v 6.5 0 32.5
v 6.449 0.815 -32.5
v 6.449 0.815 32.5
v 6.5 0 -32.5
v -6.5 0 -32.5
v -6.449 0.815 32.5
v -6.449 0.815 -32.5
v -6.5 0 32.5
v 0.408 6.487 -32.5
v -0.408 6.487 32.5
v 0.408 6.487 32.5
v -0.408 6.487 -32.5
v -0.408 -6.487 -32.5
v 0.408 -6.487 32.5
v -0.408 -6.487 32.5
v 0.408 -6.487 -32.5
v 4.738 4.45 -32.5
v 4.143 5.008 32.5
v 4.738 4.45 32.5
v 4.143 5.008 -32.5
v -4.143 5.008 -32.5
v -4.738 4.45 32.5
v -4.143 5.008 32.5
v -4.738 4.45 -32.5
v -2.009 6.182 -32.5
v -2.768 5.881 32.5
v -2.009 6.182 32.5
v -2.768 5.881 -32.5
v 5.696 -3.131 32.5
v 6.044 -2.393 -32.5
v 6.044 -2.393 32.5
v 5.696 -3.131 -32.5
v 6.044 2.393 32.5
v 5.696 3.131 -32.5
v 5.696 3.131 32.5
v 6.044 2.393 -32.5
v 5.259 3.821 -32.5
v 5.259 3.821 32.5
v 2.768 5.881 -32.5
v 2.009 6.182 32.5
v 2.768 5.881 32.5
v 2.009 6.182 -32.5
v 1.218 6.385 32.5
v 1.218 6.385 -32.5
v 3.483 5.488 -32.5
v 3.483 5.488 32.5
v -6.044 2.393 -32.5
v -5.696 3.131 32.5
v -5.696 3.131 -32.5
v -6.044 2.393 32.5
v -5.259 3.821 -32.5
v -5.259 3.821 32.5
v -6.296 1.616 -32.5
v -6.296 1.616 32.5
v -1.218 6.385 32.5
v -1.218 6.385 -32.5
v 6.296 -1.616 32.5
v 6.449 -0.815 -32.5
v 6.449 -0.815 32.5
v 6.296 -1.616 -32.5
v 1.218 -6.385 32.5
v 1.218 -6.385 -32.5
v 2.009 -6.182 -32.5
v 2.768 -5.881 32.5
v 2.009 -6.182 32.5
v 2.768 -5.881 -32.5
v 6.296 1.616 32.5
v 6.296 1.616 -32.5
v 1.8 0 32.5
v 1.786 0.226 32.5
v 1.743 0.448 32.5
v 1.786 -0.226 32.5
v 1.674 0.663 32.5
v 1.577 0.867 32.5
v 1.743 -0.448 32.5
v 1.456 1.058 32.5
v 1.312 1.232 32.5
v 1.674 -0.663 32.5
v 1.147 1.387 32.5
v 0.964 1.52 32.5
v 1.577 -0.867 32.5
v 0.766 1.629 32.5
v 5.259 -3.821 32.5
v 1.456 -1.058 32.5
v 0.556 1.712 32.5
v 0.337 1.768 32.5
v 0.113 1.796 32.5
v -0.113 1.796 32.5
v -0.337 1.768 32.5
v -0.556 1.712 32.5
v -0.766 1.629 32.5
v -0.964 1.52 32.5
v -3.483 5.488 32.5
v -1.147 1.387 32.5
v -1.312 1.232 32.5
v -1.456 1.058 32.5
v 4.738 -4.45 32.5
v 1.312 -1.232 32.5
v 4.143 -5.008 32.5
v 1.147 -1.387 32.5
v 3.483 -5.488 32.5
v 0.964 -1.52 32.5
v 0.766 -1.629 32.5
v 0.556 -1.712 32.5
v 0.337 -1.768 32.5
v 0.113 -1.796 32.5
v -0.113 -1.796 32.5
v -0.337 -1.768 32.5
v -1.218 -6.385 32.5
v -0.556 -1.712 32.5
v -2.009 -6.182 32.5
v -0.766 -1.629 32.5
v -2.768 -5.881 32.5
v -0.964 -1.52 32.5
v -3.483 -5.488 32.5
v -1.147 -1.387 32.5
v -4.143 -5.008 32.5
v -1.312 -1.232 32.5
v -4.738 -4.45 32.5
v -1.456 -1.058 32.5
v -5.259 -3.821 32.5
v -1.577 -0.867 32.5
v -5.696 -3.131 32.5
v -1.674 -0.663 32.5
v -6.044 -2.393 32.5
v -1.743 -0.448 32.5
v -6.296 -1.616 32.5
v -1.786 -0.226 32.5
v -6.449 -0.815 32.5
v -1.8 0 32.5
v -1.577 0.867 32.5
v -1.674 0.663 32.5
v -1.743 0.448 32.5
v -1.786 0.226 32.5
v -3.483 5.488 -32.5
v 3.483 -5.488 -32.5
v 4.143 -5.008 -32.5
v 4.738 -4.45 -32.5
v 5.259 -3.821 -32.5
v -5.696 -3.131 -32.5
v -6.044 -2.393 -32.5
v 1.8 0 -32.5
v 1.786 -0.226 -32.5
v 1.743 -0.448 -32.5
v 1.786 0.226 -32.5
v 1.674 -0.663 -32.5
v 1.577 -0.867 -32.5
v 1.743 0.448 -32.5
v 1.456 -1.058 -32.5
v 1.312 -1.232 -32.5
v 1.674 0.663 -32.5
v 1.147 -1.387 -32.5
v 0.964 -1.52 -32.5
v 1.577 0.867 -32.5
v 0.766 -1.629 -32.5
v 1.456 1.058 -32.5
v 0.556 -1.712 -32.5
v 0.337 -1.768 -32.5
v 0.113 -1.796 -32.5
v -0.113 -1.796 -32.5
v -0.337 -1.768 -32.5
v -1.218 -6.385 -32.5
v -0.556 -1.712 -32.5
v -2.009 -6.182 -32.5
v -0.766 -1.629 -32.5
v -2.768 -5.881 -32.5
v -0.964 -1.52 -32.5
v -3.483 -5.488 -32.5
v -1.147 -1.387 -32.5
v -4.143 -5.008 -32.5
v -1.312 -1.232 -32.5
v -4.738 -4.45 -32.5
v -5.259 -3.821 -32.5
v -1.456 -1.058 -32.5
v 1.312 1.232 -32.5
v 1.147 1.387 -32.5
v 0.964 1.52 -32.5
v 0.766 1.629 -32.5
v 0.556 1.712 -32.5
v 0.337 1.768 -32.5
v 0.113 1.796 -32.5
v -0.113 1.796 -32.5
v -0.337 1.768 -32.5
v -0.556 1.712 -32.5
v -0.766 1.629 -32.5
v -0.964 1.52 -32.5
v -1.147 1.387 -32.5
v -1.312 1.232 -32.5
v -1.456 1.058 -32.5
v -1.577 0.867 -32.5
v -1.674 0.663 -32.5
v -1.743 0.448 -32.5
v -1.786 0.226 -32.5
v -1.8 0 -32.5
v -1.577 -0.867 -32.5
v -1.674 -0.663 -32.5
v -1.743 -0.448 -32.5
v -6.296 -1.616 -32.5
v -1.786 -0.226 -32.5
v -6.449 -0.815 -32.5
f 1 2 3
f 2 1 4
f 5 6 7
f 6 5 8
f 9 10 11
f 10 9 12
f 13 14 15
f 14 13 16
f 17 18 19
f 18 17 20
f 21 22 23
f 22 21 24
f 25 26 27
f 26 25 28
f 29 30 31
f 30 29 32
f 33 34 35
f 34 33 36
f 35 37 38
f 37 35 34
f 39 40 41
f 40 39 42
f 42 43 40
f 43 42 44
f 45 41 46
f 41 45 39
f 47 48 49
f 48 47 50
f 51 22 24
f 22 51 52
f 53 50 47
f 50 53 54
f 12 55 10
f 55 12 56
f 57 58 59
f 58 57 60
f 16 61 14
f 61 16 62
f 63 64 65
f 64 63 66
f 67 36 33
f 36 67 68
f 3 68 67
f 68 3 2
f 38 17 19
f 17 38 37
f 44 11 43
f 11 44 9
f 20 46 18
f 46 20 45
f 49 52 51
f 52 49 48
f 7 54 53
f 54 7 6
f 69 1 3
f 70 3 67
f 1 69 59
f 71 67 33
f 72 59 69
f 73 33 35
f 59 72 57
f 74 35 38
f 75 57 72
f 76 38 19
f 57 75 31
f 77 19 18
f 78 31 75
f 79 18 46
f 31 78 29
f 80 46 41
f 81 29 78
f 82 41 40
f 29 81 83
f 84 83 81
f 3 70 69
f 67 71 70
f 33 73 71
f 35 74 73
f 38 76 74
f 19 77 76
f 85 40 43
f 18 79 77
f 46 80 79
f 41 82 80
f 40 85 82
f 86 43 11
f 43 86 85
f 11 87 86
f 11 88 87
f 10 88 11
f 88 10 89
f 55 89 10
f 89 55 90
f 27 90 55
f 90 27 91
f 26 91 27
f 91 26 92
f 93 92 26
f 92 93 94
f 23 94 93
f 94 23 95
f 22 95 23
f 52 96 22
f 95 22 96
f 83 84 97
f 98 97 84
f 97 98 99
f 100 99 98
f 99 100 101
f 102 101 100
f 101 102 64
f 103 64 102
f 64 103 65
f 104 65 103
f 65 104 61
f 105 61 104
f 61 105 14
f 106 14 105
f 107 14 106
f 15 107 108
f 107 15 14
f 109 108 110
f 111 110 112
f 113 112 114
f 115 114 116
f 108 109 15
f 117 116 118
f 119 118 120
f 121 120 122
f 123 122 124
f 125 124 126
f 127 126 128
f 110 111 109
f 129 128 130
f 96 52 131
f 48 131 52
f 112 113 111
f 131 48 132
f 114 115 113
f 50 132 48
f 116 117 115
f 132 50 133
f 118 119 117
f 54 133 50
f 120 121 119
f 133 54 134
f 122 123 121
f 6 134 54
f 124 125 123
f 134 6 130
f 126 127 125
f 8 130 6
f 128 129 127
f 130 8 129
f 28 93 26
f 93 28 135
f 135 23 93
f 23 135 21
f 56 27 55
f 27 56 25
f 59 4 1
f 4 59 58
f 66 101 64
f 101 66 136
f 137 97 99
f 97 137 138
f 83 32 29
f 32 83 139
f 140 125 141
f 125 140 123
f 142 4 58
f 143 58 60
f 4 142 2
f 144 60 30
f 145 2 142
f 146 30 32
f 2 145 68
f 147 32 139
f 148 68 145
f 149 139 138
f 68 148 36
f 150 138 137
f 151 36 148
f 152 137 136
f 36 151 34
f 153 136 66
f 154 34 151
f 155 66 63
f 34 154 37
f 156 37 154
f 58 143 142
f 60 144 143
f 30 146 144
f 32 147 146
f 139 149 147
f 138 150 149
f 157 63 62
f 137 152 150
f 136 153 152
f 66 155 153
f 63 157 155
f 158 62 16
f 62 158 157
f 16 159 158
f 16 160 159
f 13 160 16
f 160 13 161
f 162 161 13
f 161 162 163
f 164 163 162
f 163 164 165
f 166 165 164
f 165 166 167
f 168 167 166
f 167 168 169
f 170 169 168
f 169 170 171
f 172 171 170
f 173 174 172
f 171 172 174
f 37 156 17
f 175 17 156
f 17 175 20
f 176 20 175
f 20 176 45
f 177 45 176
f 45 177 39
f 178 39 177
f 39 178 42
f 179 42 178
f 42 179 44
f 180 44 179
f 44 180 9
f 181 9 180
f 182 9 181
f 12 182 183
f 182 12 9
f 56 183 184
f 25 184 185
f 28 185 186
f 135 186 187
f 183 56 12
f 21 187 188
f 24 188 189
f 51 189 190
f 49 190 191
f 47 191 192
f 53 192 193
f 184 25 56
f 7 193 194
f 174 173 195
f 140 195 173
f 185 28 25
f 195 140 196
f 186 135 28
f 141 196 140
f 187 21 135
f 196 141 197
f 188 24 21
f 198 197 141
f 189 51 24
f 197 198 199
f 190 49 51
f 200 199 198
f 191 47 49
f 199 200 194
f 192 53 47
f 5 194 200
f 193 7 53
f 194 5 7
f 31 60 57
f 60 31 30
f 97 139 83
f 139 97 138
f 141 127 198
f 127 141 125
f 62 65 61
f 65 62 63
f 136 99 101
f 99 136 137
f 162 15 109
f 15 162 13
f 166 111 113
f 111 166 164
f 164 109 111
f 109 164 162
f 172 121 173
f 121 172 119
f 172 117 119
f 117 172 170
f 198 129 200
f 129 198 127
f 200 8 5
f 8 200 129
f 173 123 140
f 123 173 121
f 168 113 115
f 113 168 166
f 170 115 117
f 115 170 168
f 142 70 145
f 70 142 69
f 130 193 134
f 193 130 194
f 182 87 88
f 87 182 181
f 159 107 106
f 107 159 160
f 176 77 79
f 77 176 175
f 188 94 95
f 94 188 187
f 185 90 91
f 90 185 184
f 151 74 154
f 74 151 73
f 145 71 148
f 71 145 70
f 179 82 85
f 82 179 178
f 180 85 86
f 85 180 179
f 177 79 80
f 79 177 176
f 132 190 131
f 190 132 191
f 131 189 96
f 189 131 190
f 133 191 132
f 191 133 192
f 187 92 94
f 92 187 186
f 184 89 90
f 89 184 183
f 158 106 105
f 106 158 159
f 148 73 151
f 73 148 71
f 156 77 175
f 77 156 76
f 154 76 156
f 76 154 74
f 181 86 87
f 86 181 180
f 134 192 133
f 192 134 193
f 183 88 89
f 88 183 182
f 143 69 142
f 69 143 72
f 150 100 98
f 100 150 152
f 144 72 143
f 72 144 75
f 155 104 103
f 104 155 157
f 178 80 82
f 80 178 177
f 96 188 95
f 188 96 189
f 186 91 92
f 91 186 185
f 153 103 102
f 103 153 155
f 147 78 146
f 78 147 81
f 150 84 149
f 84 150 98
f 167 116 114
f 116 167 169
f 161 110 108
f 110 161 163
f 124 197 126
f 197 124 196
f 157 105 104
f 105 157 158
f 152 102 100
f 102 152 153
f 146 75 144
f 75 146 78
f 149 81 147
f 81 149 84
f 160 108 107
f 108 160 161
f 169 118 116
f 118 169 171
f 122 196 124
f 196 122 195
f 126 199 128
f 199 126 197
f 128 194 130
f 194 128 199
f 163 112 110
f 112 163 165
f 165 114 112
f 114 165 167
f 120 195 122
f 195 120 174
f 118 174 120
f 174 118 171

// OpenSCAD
$fn = 50;


difference() {
	union() {
		translate(v = [0, 0, -32.5000000000]) {
			cylinder(h = 65, r = 6.5000000000);
		}
	}
	union() {
		translate(v = [0, 0, -100.0000000000]) {
			cylinder(h = 200, r = 1.8000000000);
		}
	}
}
